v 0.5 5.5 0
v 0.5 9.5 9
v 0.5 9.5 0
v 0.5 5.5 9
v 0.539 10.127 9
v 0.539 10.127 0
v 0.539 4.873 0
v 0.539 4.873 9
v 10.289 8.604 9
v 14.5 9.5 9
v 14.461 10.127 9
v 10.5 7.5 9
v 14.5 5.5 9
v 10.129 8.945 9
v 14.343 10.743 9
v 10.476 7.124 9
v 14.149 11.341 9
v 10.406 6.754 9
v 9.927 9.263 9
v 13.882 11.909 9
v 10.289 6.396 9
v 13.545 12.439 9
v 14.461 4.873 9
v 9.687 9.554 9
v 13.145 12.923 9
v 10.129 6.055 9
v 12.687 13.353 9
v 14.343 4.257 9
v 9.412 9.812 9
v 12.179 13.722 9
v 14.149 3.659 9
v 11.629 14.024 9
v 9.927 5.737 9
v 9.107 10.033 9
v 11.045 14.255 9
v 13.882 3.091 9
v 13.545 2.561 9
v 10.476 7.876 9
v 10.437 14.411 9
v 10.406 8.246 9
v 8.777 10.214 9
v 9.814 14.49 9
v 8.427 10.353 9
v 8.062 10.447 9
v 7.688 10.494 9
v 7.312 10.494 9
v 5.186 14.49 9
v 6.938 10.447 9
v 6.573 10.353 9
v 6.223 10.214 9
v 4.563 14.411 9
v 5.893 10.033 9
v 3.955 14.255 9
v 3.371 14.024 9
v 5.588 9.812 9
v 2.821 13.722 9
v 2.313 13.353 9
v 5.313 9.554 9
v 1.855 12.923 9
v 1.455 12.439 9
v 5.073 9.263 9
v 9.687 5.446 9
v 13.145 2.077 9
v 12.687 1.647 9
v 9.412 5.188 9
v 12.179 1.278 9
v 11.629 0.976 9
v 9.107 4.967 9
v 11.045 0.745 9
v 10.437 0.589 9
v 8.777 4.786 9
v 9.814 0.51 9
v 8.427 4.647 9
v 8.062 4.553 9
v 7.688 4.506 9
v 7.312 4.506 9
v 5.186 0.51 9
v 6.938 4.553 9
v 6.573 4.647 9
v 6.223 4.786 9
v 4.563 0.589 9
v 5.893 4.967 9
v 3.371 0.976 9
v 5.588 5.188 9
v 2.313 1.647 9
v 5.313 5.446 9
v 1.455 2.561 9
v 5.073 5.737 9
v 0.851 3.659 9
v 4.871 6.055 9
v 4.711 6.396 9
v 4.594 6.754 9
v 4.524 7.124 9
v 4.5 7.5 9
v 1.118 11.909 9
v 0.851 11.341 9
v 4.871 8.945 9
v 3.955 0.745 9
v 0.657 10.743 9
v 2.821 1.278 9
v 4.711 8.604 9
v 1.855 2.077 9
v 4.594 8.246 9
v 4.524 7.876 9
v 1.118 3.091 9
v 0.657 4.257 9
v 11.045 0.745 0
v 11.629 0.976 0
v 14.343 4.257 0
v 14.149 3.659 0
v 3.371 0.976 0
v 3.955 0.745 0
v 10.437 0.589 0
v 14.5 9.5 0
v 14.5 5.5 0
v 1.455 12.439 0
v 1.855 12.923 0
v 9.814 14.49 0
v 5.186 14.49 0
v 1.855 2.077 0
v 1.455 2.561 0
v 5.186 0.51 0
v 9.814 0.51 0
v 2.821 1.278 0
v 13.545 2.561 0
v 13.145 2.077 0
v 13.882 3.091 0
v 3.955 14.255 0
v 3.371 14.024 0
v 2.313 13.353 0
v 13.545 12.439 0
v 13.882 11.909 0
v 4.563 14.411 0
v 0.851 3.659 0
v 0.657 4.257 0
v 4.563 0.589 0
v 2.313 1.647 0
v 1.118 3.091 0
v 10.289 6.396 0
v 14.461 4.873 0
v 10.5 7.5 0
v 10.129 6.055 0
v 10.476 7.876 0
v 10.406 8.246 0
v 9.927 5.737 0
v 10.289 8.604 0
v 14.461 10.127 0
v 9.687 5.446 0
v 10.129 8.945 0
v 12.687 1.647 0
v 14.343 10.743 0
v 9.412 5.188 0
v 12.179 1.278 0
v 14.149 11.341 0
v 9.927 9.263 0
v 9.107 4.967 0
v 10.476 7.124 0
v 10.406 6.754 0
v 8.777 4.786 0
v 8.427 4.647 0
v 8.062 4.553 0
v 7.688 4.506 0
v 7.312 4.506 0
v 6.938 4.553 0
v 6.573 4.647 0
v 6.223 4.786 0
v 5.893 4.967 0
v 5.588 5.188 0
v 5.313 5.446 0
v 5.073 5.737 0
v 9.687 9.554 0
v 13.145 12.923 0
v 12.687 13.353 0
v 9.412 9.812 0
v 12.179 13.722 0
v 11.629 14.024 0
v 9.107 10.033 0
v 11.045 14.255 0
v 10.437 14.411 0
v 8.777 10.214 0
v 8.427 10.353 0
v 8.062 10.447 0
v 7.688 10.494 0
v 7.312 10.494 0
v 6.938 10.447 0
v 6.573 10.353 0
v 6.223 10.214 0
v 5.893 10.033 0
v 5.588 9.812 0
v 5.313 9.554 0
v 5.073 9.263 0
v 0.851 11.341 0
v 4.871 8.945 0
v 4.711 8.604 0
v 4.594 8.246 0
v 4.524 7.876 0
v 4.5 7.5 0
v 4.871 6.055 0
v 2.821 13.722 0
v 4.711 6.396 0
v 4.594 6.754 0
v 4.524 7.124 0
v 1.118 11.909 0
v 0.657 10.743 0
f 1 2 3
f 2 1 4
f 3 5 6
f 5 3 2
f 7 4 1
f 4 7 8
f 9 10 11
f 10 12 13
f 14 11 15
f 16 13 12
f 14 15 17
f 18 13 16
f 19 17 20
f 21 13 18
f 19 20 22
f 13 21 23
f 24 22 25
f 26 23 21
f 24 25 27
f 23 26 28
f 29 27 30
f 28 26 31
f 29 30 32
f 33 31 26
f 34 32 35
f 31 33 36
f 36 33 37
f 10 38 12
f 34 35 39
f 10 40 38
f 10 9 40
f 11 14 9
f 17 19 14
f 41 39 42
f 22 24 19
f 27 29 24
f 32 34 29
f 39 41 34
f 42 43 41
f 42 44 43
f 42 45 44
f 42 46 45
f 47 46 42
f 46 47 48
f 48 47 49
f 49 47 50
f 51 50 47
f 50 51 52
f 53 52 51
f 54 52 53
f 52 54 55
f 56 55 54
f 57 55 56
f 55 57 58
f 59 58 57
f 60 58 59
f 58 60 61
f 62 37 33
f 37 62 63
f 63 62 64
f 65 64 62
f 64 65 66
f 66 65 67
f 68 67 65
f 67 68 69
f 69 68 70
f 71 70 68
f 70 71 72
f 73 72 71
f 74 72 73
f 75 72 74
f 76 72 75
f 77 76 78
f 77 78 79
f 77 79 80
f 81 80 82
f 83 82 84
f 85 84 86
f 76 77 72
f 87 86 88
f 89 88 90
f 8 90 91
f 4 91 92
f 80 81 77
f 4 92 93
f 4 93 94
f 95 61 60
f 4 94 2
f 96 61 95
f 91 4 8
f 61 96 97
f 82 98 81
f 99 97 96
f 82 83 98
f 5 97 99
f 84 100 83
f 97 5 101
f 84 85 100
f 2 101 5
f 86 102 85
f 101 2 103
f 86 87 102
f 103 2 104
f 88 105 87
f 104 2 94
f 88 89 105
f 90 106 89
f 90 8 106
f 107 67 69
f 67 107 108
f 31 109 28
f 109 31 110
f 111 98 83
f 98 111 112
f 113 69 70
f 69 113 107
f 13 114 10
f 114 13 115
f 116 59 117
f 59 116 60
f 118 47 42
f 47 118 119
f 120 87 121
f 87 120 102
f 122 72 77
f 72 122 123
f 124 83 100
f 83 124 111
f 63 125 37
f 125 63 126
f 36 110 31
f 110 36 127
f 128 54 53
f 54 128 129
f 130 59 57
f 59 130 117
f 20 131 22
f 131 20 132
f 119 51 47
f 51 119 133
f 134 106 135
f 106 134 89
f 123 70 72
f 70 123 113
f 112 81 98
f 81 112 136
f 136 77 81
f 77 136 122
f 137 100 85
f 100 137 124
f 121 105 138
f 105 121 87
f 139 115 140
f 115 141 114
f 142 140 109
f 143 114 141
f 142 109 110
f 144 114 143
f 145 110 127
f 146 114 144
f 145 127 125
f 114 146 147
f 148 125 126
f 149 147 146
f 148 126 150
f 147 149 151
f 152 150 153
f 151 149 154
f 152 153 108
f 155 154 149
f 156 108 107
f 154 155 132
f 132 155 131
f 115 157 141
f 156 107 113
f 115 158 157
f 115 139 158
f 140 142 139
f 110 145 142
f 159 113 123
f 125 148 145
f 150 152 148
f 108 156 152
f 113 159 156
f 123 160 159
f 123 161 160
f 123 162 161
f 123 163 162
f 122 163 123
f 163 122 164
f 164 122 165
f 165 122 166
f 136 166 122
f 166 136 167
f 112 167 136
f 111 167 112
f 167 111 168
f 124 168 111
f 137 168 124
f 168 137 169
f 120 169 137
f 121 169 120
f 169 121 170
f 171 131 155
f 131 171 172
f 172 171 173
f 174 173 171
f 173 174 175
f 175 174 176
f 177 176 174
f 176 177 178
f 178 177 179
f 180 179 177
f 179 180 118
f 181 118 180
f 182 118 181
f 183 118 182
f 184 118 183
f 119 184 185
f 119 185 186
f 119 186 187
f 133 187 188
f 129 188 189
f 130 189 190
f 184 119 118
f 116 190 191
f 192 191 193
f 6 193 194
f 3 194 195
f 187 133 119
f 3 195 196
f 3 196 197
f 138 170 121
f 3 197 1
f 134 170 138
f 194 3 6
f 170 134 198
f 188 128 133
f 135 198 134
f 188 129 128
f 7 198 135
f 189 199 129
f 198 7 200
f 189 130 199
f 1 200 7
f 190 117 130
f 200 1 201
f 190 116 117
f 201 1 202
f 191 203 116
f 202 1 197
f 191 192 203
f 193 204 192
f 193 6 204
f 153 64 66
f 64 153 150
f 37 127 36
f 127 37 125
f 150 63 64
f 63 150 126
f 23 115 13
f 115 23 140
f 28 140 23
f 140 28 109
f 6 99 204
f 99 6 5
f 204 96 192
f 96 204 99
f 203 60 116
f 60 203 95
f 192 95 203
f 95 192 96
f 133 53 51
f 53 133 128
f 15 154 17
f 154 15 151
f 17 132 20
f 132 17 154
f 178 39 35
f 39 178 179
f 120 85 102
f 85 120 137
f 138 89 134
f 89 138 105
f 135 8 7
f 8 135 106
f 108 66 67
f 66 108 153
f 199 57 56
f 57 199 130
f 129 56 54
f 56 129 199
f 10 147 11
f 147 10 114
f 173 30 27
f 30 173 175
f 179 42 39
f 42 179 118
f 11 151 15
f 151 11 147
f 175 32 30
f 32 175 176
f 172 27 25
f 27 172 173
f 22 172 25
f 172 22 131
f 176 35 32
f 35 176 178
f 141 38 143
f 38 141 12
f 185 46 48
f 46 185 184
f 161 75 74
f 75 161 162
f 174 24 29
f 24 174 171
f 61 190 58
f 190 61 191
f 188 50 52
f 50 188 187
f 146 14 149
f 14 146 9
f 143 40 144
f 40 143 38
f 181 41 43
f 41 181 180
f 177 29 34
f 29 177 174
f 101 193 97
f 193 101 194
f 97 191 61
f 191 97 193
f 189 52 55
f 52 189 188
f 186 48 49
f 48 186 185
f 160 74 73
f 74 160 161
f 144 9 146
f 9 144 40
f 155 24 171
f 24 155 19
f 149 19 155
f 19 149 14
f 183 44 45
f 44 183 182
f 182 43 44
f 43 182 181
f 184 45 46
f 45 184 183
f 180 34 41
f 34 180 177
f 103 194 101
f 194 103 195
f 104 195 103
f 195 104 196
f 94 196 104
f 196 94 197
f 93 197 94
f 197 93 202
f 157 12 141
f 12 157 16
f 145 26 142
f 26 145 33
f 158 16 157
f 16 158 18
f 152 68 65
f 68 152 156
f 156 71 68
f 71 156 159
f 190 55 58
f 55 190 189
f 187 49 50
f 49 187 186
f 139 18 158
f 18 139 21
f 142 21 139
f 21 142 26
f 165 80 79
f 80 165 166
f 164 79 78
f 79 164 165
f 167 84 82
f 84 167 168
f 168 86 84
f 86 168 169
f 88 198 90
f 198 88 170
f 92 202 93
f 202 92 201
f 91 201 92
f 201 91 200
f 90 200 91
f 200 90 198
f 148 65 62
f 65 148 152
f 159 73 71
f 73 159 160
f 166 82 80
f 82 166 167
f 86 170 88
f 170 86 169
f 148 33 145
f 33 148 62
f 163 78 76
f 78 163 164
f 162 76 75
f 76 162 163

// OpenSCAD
// Generated by SolidPython 1.1.3 on 2023-01-09 15:31:20
$fn = 50;


difference() {
	union() {
		translate(v = [7.5000000000, 7.5000000000, 0]) {
			rotate(a = [0, 0, 0]) {
				hull() {
					translate(v = [-2.0000000000, 2.0000000000, 0]) {
						rotate(a = [0, 0, 0]) {
							translate(v = [0, 0, 0]) {
								rotate(a = [0, 0, 0]) {
									cylinder(h = 9, r = 5);
								}
							}
						}
					}
					translate(v = [2.0000000000, 2.0000000000, 0]) {
						rotate(a = [0, 0, 0]) {
							translate(v = [0, 0, 0]) {
								rotate(a = [0, 0, 0]) {
									cylinder(h = 9, r = 5);
								}
							}
						}
					}
					translate(v = [-2.0000000000, -2.0000000000, 0]) {
						rotate(a = [0, 0, 0]) {
							translate(v = [0, 0, 0]) {
								rotate(a = [0, 0, 0]) {
									cylinder(h = 9, r = 5);
								}
							}
						}
					}
					translate(v = [2.0000000000, -2.0000000000, 0]) {
						rotate(a = [0, 0, 0]) {
							translate(v = [0, 0, 0]) {
								rotate(a = [0, 0, 0]) {
									cylinder(h = 9, r = 5);
								}
							}
						}
					}
				}
			}
		}
	}
	union() {
		translate(v = [7.5000000000, 7.5000000000, 0]) {
			rotate(a = [0, 0, 0]) {
				translate(v = [0, 0, -50]) {
					rotate(a = [0, 0, 0]) {
						cylinder(h = 100, r = 3.0000000000);
					}
				}
			}
		}
	}
}
/***********************************************
*********      SolidPython code:      **********
************************************************
 
from solid import *
import os
import subprocess

import oomB

import opsc_library_gen

mode = "laser"
#mode = "3d_print"

defined_objects = {}

radius_dict = {}
countersunk_dict = {}


def set_mode(m):
    global mode
    mode = m
    radius_dict['M6'] = 6.5/2
    radius_dict['M3'] = 3.3/2
    if mode == "laser":
        radius_dict['M6'] = 6/2
        radius_dict['M3'] = 3/2

    countersunk_dict['M3'] = {}
    countersunk_dict['M3']['little_rad'] = radius_dict['M3']
    countersunk_dict['M3']['big_rad'] = (5.5+0.6)/2
    if mode == "laser":
        countersunk_dict['M3']['big_rad'] = (4.75+0.6)/2
        countersunk_dict['M3']['little_rad'] = (4.75+0.6)/2

    countersunk_dict['M3']['height'] = 1.7


def opsc_make_object(filename, objects, save_type="none",resolution=50, layers = 1, tilediff = 200, mode="laser"):
    set_mode(mode)
    save_type = save_type.lower()
    os.makedirs(os.path.dirname(filename), exist_ok=True)
    final_object = opsc_get_object(objects)
    # Save the final object to the specified filename    
    scad_render_to_file(final_object, filename, file_header='$fn = %s;' % resolution, include_orig_code=True)
    if mode == "laser":
        filename_laser = filename.replace(".scad","-flat.scad")
        scad_render_to_file(getLaser(final_object, layers=layers, tilediff=tilediff), filename_laser, file_header='$fn = %s;' % resolution, include_orig_code=True)
        if save_type == "all":
            saveToAll(filename_laser)
        elif save_type == "dxf":
            saveToDxf(filename_laser)
    if save_type == "all":
        saveToAll(filename)
    elif save_type == "dxf":
        saveToDxf(filename)


def opsc_get_object(objects):
    # Create the solidpython objects
    positive_objects = [get_opsc_item(obj) for obj in objects if obj['type'] == 'positive']
    negative_objects = [get_opsc_item(obj) for obj in objects if obj['type'] == 'negative']
    # Union the positive objects
    positive_object = union()(*positive_objects)
    # Union the negative objects
    negative_object = union()(*negative_objects)
    # Create the final object by subtracting the negative objects from the positive objects
    return difference()(positive_object, negative_object)

def get_opsc_item(params):
    # A dictionary to map radius string values to numerical values
    #radius_dict = {'small': 5, 'medium': 10, 'large': 15}
    # An array of function names for basic shapes
    basic_shapes = ['cube', 'sphere', 'cylinder']
    
    # An array of function names for other shapes
    other_shapes = ['hole', 'slot', 'rounded_rectangle', 'countersunk']
    


    # Convert radius to r if present, and remove radius from the params dictionary
    if 'radius' in params:
        if isinstance(params['radius'], str):
            # Use the radius_dict to map the radius string value to a numerical value
            params['r'] = radius_dict[params['radius']]
        else:
            params['r'] = params['radius']
        del params['radius']
    

    # Check if the object type is a basic shape
    if params['shape'] in basic_shapes:
        # Remove shape and unexpected dictionary values
        allowed_keys = {'size', 'r', 'r1', 'r2', 'd', 'h', 'rw', 'rh', 'dw', 'dh'}
        shape_params = {k: v for k, v in params.items() if k in allowed_keys}

        # Call the corresponding function for the shape parameter, using ** notation to pass the shape_params dictionary as keyword arguments
        return get_opsc_transform(params,globals()[params['shape']](**shape_params))
    
    # If the object type is not a basic shape, check if it's a defined object or one of the other shapes
    elif params['shape'] in other_shapes:
        # Call the corresponding function for the shape parameter, passing the params dictionary as an argument
        p2 = copy.deepcopy(params)
        p2["pos"] = [0,0,0]
        return get_opsc_transform(params,globals()[params['shape']](p2))
    
    # If the object is not a basic shape or a defined object, try to import it from a .scad file
    else:
        obj = defined_objects[params['shape']]
        return get_opsc_transform(params,obj)

def get_opsc_transform(params, solid_obj):
    # Rotate the object based on the 'rot' field in the params dictionary, or the 'rotX', 'rotY', and 'rotZ' fields if 'rot' is not present
    rot = params.get('rot', [])
    if rot:
        rotX, rotY, rotZ = rot
    else:
        rotX = params.get('rotX', 0)
        rotY = params.get('rotY', 0)
        rotZ = params.get('rotZ', 0)
    solid_obj = rotate([rotX, rotY, rotZ])(solid_obj)

    # Translate the object based on the 'pos' field in the params dictionary, or the 'x', 'y', and 'z' fields if 'pos' is not present
    pos = params.get('pos', [])
    if pos:
        x, y, z = pos
    else:
        x = params.get('x', 0)
        y = params.get('y', 0)
        z = params.get('z', 0)
    solid_obj = translate([x, y, z])(solid_obj)
    return solid_obj


import random

def opsc_easy_array(type, shape, repeats, pos_start, shift_arr, **kwargs):
    for i in range(0,3):
        repeats.append(1)
        pos_start.append(0)
        shift_arr.append(0)
    return_objects = []

    for x in range(0,repeats[0]):
        for y in range(0,repeats[1]):
            for z in range(0,repeats[2]):
                return_objects.append(opsc_easy(type, shape, pos=[pos_start[0]+x*shift_arr[0],pos_start[1]+y*shift_arr[1],pos_start[2]+z*shift_arr[2]], **kwargs))
    return return_objects                



def opsc_easy(type, shape, **kwargs):
    obj = {
        'type': type,
        'shape': shape
    }
    for param in ['size', 'r', 'r1', 'r2', 'd', 'h', 'rw', 'rh', 'dw', 'dh', 'pos', 'x', 'y', 'z', 'rot', 'rotX', 'rotY', 'rotZ', "w"]:
        if param in kwargs:
            obj[param] = kwargs[param]
    return obj

def hole(params):
    p2 = copy.deepcopy(params)  
    # Check if the radius is a string and replace it with the corresponding value from the dictionary
    if isinstance(p2['r'], str):
        p2['r'] = radius_dict[p2['r']]
    
    # Set the height to 100 if not specified
    if 'h' not in p2:
        p2['h'] = 100
        p2["pos"] = [0,0,-50]
    p2["center"] = True
    # Create the cylinder object
    p2["shape"] = "cylinder"
    p2["type"] = "positive"

    return get_opsc_item(p2)

import copy

def countersunk(params):
    p2 = copy.deepcopy(params)
    counter_rad = p2['r']
    p2['r'] = radius_dict[p2['r']]
    hp = copy.deepcopy(p2)
    hp["type"] = "positive"
    hp["shape"] = "hole"
    del hp["rot"]
    hol = get_opsc_item(hp)
    
    cp = copy.deepcopy(p2)
    cp["h"] = countersunk_dict[counter_rad]["height"]
    cp["r2"] = countersunk_dict[counter_rad]["little_rad"]
    cp["r1"] = countersunk_dict[counter_rad]["big_rad"]
    del cp["r"]
    del cp["rot"]
    cp["type"] = "positive"
    cp["shape"] = "cylinder"
    cp["pos"] = [0,0,0]

    top = get_opsc_item(cp)
    return union()(hol,top)



def slot(params):  
    p2 = copy.deepcopy(params) 
    if isinstance(p2['r'], str):
        p2['r'] = radius_dict[p2['r']]
    p2["type"] = "positive"
    p2["shape"] = "hole"
    del p2["rot"]
    p2["pos"] = [0,0,0]
    left = copy.deepcopy(p2)
    right = copy.deepcopy(p2)
    left["pos"][0] = p2["w"] / 2 - p2["r"] 
    
    right["pos"][0] = -p2["w"] / 2 + p2["r"] 
    pass
    leftObj = get_opsc_item(left)
    rightObj = get_opsc_item(right)
    return hull()(leftObj, rightObj)

def rounded_rectangle(params):   
    p2 = copy.deepcopy(params) 
    p2["h"] = p2["size"][2]
    p2["pos"] = p2.get("pos", [0, 0, 0]) 
    p2["type"] = "positive"
    p2["shape"] = "hole"
    p2["pos"] = [0,0,0]
    
    if 'rot' in p2:
        del p2["rot"]   
    if 'r' not in p2:
        p2["r"] = 5 
    tl = copy.deepcopy(p2)
    tr = copy.deepcopy(p2)
    bl = copy.deepcopy(p2)
    br = copy.deepcopy(p2)
    tl["pos"][0] = -(p2["size"][0] - p2["r"]*2)/2
    tl["pos"][1] = (p2["size"][1] - p2["r"]*2)/2
    tr["pos"][0] = (p2["size"][0] - p2["r"]*2)/2
    tr["pos"][1] = (p2["size"][1] - p2["r"]*2)/2
    bl["pos"][0] = -(p2["size"][0] - p2["r"]*2)/2
    bl["pos"][1] = -(p2["size"][1] - p2["r"]*2)/2
    br["pos"][0] = (p2["size"][0] - p2["r"]*2)/2
    br["pos"][1] = -(p2["size"][1] - p2["r"]*2)/2
    del tl["size"]
    del tr["size"]
    del bl["size"]
    del br["size"]
    tlo = get_opsc_item(tl)
    tro = get_opsc_item(tr)
    blo = get_opsc_item(bl)
    bro = get_opsc_item(br)    
    return hull()(tlo, tro, blo, bro)



def import_scad_object(filename):
    # Import the .scad file and convert it to a solidpython object
    #filename = "parts"
    obj = import_scad(filename)
    return obj.main()
    


import os
import solid as solidpython

# A dictionary to store the defined objects


def load_scad_objects():
    opsc_library_gen.gen_library(defined_objects)

import random

def test(num_objects):
    objects = []
    for i in range(num_objects):
        # Choose a random shape
        #shape = random.choice(['cube', 'sphere', 'cylinder', 'hole', 'slot', "rounded_rectangle"])
        shape = random.choice(["rounded_rectangle"])

        # Choose a random type
        type = random.choice(['positive', 'negative'])
        
        # Create an empty object dictionary
        obj = {'shape': shape, 'type': type}
        
        # Set shape-specific parameters
        if obj['shape'] in ['cube']:
            obj['size'] =  [random.uniform(5, 15), random.uniform(5, 15), random.uniform(5, 15)]
        if obj['shape'] in ['rounded_rectangle']:
            obj['size'] =  [random.uniform(5, 15), random.uniform(5, 15), random.uniform(5, 15)]
            obj['r'] = random.uniform(0.5, 5)
        elif obj['shape'] == 'sphere':
            obj['r'] = random.uniform(5, 15)
        elif obj['shape'] in ['cylinder', 'hole']:
            obj['r'] = random.uniform(0.5, 5)
            obj['h'] = random.uniform(5, 15)
        elif obj['shape'] == 'slot':
            obj['r'] = random.uniform(0.5, 5)
            obj['h'] = random.uniform(5, 15)
            obj['w'] = random.uniform(5, 15)
        
        # Set a random position and rotation
        obj['pos'] = [random.uniform(-20, 20), random.uniform(-20, 20), random.uniform(-20, 20)]
        obj['rot'] = [random.uniform(-180, 180), random.uniform(-180, 180), random.uniform(-180, 180)]
        
        # Add the object to the list
        objects.append(obj)
    return objects

####### old file saving
def saveToAll(fileIn):
    saveToDxf(fileIn)
    saveToPng(fileIn)
    saveToStl(fileIn)
    saveToSvg(fileIn)

def saveToDxf(fileIn, fileOut="", copy_to_laser=True):
    if fileOut == "":
        fileOut = fileIn.replace(".scad",".dxf")
    saveToFile(fileIn, fileOut)


    
def saveToPng(fileIn, fileOut="",extra="--render"):
    if fileOut == "":
        fileOut = fileIn.replace(".scad",".png")
    saveToFile(fileIn, fileOut)

def saveToStl(fileIn, fileOut=""):
    if fileOut == "":
        fileOut = fileIn.replace(".scad",".stl")
    saveToFile(fileIn, fileOut)
    
def saveToSvg(fileIn, fileOut=""):
    if fileOut == "":
        fileOut = fileIn.replace(".scad",".svg")
    saveToFile(fileIn, fileOut)

def saveToFile(fileIn, fileOut,extra=""):
    #extra = extra + " --colorscheme Tomorrow"

    launchStr = 'openscad -o "' + fileOut + '"' + extra + ' "' + fileIn + '"'
    if ".png" in fileOut:
        launchStr = launchStr + " --render"
    print("            saveToFile launch string: " + launchStr)
    subprocess.run(launchStr)
    x=0

def getLaser(final_object,start=1.5,layers=1,thickness=3,tilediff=200):
        rv= []

        for x in range(layers):
            rv.append(translate([0,x*tilediff,0])(
                    projection()(
                        intersection()(translate([-500,-500,start+x*thickness])(cube(size=[1000,1000,0.1])),
                            final_object
                        )
                    )
            )
            )
            
        return union()(rv)

set_mode("laser")
load_scad_objects() 
 
************************************************/
